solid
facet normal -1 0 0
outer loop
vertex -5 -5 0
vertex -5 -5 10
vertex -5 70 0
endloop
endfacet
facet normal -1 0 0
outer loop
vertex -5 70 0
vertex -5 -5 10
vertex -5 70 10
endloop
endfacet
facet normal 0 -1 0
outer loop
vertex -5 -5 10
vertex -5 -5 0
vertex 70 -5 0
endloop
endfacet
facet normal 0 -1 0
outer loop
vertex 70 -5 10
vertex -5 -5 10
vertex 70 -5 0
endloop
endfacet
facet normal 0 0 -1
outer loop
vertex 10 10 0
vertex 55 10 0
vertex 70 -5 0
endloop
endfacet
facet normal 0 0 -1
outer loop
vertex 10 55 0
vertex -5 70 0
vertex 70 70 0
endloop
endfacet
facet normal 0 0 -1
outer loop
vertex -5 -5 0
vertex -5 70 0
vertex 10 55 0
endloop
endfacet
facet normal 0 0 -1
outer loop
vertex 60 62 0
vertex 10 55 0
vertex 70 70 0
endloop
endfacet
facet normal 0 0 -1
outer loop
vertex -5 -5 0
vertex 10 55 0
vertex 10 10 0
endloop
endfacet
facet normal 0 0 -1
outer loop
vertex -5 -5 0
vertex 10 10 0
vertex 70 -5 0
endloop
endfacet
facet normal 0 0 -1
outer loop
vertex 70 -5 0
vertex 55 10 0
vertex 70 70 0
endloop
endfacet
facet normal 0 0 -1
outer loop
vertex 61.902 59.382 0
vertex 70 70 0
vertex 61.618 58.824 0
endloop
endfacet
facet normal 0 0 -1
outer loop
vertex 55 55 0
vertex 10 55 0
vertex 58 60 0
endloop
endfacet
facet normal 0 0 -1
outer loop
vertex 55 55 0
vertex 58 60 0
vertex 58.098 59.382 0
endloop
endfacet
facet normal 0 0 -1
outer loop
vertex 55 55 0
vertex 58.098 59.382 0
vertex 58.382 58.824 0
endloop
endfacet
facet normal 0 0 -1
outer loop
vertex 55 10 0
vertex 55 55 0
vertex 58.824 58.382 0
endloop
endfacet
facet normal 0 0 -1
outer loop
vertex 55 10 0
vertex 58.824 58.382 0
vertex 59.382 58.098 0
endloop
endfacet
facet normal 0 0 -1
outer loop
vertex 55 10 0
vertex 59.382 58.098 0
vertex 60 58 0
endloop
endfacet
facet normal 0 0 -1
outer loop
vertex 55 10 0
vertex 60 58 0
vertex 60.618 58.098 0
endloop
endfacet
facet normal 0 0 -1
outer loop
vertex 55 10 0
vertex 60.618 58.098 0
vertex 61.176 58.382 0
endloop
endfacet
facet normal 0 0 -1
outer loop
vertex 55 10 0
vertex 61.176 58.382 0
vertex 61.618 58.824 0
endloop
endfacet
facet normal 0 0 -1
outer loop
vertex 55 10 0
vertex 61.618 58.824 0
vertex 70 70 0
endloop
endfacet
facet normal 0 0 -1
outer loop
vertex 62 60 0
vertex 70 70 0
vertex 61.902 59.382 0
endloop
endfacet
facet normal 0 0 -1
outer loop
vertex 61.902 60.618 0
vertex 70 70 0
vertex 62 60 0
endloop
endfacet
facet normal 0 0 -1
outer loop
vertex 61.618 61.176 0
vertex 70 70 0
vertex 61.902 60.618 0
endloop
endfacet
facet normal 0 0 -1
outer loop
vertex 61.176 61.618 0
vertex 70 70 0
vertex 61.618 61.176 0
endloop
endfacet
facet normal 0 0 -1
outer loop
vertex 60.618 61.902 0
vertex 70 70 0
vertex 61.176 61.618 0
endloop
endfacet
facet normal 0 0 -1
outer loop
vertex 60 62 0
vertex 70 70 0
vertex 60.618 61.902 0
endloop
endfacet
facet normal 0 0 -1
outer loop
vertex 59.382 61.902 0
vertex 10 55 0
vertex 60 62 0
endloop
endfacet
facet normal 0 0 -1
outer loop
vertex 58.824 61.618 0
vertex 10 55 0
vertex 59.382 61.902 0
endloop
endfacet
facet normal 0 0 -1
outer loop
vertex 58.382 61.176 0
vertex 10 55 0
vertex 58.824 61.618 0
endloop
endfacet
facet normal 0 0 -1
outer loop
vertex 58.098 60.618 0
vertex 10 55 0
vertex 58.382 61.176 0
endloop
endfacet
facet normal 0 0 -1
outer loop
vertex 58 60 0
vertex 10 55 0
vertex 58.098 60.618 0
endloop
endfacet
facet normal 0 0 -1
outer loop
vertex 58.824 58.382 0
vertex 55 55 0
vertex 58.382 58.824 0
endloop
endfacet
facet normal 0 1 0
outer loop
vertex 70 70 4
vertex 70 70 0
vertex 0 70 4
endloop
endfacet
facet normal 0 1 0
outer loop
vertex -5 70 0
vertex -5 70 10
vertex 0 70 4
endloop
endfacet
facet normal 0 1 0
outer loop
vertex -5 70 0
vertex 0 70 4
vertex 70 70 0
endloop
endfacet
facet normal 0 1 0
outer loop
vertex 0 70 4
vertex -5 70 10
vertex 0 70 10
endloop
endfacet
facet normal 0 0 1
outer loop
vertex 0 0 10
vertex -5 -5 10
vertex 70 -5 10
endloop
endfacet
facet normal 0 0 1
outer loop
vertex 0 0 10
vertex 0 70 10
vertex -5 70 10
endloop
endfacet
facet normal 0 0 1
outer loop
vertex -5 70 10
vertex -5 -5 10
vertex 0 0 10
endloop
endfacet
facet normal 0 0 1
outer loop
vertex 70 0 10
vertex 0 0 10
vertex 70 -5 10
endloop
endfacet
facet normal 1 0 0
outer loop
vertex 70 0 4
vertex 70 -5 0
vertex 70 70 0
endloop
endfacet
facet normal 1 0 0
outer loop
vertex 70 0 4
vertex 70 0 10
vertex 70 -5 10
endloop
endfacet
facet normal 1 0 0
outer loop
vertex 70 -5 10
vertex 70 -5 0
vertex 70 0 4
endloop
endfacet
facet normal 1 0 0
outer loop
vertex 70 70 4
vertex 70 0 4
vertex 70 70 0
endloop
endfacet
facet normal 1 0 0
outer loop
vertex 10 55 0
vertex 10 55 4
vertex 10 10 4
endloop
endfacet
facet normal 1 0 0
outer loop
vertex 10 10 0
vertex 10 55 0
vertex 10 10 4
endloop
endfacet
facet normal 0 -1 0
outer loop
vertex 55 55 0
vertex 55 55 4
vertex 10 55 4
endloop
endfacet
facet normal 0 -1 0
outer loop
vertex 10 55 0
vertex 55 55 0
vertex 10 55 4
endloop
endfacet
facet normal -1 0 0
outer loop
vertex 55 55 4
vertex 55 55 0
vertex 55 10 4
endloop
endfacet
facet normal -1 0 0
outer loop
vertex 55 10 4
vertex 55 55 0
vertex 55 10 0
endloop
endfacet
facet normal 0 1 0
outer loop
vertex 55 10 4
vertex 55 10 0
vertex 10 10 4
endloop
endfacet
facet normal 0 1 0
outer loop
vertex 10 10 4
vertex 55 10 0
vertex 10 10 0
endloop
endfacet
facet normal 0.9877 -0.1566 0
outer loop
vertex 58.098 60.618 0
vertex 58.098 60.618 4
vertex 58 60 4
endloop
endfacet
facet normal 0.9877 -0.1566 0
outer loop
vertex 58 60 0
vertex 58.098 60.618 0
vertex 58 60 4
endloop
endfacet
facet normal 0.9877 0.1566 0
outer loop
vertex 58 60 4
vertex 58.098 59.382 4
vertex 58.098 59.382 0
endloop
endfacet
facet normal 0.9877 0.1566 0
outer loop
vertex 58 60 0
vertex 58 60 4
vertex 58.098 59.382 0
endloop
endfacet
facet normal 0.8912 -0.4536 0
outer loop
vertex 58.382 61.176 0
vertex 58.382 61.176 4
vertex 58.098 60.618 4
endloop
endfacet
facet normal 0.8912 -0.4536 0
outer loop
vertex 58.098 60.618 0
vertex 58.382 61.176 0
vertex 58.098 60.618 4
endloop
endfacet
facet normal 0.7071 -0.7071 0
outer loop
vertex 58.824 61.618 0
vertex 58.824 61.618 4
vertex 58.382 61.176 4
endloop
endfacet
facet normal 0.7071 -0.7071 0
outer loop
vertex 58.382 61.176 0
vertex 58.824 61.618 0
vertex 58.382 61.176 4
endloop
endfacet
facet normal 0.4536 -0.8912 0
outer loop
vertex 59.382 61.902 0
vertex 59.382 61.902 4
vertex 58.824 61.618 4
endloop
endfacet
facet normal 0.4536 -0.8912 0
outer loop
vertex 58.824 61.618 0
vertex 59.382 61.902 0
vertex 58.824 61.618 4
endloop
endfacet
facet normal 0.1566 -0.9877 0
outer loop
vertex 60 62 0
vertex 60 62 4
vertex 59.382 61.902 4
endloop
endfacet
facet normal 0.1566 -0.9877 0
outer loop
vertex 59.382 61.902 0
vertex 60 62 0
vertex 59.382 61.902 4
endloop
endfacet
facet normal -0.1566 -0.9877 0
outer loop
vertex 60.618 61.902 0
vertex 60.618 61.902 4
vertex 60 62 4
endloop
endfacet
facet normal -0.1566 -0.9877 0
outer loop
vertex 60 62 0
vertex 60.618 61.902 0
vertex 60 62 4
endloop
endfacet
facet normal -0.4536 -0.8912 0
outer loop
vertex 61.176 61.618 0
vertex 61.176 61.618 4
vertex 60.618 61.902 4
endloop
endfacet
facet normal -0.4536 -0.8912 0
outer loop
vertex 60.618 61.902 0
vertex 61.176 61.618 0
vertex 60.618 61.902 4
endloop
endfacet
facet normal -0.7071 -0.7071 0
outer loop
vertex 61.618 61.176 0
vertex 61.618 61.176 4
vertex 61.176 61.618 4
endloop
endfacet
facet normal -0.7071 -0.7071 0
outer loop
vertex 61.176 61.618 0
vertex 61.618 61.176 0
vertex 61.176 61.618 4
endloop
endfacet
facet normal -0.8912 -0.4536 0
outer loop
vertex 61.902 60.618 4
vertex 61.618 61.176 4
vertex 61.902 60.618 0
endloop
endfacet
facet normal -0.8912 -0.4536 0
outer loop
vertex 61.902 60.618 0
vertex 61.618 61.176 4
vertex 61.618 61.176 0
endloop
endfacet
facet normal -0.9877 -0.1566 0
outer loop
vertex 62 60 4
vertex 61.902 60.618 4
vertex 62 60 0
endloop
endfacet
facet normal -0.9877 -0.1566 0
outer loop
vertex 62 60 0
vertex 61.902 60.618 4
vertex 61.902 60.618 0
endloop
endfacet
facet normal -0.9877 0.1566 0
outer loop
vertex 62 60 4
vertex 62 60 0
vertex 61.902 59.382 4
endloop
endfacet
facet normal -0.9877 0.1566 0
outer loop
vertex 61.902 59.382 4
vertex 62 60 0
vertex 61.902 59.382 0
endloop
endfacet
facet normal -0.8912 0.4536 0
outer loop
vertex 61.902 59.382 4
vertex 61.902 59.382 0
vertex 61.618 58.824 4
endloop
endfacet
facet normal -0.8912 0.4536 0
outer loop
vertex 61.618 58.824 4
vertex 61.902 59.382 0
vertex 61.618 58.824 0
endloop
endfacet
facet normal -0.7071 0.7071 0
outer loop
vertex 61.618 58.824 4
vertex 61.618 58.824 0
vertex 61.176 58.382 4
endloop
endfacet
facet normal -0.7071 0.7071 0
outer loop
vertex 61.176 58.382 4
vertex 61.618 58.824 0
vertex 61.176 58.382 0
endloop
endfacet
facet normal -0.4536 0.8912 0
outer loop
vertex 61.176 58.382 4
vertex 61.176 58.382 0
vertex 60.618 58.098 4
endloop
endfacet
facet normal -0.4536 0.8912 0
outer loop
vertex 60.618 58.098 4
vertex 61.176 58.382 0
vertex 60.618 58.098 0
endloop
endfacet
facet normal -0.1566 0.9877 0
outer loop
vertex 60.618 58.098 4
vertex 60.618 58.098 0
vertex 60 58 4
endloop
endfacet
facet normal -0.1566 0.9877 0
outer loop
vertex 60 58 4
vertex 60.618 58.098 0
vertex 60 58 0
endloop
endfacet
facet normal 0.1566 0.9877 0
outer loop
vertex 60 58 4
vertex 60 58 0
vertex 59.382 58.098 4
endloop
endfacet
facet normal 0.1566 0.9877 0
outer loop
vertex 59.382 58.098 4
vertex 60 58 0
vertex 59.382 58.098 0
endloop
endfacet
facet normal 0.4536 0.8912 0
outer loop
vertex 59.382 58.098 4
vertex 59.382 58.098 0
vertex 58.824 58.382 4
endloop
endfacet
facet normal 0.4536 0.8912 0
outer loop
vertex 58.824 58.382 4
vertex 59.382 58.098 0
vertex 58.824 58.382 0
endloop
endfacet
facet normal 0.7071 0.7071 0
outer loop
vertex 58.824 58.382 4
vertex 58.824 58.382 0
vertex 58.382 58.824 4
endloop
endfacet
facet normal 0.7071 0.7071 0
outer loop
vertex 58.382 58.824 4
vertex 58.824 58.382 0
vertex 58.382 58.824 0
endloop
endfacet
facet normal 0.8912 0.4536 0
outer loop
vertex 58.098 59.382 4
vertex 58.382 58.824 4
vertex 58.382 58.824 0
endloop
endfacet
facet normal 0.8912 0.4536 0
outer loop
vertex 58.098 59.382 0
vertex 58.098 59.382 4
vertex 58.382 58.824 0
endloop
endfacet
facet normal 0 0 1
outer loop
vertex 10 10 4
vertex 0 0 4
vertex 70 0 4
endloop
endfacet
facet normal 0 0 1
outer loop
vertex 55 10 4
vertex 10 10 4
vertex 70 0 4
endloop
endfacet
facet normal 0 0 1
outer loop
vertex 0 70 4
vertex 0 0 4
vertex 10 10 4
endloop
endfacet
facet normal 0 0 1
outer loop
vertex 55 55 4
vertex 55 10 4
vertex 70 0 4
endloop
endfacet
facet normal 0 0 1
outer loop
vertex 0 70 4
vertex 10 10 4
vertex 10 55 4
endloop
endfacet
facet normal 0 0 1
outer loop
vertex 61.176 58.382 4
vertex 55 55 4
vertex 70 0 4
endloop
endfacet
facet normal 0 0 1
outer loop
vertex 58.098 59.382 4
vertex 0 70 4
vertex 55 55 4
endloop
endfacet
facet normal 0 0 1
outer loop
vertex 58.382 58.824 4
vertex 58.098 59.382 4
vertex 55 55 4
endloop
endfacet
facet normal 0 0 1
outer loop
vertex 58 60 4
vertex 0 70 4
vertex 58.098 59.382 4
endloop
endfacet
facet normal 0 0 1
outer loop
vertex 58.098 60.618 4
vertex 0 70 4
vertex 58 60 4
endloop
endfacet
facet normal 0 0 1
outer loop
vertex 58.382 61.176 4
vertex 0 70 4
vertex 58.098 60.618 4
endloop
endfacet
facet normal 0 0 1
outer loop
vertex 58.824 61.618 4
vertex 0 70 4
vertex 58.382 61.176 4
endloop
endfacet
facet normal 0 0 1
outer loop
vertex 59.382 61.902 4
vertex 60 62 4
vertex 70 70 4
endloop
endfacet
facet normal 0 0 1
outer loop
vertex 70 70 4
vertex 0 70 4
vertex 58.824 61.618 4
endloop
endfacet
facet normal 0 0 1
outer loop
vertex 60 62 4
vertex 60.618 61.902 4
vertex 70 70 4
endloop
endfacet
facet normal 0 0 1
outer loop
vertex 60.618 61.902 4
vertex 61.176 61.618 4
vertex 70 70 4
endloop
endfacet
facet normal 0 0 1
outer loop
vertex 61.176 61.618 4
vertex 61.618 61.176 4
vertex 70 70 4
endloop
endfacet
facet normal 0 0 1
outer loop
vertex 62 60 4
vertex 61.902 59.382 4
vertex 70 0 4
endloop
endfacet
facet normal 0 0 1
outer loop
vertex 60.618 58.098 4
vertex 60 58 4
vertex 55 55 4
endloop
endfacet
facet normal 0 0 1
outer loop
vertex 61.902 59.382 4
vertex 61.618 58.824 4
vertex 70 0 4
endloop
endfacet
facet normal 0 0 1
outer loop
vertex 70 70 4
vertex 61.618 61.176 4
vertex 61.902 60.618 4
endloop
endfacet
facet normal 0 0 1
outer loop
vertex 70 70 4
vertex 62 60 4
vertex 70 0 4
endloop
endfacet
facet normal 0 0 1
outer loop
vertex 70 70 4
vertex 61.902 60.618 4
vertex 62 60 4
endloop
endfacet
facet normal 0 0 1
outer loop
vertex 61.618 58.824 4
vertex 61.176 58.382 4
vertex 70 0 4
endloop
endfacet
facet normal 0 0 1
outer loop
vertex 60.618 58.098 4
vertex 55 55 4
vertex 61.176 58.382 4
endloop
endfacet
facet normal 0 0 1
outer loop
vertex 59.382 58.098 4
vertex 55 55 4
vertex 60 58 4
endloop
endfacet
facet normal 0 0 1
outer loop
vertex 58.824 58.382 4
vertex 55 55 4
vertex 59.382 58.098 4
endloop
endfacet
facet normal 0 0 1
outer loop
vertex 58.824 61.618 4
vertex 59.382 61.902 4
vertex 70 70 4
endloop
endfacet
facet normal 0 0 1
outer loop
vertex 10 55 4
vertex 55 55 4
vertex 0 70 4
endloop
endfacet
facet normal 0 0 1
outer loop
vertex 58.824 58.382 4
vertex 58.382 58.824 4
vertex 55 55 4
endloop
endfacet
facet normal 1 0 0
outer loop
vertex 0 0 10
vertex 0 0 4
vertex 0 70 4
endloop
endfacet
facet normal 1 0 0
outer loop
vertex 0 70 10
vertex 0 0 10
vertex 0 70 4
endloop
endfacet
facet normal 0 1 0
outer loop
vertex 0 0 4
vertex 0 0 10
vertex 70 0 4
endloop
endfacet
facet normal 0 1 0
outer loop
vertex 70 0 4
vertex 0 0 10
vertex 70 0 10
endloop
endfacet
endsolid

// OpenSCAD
union() {
	translate([-5,-5,0]) cube([75,5,10]);
	translate([-5,-5,0]) cube([5,75,10]);
	difference() {
		cube([70,70,4]);
		translate([60,60,-0.5]) cylinder(5,r=2,$fn=20);
		translate([10,10,-0.5]) cube([45,45,5]);
	}
}
